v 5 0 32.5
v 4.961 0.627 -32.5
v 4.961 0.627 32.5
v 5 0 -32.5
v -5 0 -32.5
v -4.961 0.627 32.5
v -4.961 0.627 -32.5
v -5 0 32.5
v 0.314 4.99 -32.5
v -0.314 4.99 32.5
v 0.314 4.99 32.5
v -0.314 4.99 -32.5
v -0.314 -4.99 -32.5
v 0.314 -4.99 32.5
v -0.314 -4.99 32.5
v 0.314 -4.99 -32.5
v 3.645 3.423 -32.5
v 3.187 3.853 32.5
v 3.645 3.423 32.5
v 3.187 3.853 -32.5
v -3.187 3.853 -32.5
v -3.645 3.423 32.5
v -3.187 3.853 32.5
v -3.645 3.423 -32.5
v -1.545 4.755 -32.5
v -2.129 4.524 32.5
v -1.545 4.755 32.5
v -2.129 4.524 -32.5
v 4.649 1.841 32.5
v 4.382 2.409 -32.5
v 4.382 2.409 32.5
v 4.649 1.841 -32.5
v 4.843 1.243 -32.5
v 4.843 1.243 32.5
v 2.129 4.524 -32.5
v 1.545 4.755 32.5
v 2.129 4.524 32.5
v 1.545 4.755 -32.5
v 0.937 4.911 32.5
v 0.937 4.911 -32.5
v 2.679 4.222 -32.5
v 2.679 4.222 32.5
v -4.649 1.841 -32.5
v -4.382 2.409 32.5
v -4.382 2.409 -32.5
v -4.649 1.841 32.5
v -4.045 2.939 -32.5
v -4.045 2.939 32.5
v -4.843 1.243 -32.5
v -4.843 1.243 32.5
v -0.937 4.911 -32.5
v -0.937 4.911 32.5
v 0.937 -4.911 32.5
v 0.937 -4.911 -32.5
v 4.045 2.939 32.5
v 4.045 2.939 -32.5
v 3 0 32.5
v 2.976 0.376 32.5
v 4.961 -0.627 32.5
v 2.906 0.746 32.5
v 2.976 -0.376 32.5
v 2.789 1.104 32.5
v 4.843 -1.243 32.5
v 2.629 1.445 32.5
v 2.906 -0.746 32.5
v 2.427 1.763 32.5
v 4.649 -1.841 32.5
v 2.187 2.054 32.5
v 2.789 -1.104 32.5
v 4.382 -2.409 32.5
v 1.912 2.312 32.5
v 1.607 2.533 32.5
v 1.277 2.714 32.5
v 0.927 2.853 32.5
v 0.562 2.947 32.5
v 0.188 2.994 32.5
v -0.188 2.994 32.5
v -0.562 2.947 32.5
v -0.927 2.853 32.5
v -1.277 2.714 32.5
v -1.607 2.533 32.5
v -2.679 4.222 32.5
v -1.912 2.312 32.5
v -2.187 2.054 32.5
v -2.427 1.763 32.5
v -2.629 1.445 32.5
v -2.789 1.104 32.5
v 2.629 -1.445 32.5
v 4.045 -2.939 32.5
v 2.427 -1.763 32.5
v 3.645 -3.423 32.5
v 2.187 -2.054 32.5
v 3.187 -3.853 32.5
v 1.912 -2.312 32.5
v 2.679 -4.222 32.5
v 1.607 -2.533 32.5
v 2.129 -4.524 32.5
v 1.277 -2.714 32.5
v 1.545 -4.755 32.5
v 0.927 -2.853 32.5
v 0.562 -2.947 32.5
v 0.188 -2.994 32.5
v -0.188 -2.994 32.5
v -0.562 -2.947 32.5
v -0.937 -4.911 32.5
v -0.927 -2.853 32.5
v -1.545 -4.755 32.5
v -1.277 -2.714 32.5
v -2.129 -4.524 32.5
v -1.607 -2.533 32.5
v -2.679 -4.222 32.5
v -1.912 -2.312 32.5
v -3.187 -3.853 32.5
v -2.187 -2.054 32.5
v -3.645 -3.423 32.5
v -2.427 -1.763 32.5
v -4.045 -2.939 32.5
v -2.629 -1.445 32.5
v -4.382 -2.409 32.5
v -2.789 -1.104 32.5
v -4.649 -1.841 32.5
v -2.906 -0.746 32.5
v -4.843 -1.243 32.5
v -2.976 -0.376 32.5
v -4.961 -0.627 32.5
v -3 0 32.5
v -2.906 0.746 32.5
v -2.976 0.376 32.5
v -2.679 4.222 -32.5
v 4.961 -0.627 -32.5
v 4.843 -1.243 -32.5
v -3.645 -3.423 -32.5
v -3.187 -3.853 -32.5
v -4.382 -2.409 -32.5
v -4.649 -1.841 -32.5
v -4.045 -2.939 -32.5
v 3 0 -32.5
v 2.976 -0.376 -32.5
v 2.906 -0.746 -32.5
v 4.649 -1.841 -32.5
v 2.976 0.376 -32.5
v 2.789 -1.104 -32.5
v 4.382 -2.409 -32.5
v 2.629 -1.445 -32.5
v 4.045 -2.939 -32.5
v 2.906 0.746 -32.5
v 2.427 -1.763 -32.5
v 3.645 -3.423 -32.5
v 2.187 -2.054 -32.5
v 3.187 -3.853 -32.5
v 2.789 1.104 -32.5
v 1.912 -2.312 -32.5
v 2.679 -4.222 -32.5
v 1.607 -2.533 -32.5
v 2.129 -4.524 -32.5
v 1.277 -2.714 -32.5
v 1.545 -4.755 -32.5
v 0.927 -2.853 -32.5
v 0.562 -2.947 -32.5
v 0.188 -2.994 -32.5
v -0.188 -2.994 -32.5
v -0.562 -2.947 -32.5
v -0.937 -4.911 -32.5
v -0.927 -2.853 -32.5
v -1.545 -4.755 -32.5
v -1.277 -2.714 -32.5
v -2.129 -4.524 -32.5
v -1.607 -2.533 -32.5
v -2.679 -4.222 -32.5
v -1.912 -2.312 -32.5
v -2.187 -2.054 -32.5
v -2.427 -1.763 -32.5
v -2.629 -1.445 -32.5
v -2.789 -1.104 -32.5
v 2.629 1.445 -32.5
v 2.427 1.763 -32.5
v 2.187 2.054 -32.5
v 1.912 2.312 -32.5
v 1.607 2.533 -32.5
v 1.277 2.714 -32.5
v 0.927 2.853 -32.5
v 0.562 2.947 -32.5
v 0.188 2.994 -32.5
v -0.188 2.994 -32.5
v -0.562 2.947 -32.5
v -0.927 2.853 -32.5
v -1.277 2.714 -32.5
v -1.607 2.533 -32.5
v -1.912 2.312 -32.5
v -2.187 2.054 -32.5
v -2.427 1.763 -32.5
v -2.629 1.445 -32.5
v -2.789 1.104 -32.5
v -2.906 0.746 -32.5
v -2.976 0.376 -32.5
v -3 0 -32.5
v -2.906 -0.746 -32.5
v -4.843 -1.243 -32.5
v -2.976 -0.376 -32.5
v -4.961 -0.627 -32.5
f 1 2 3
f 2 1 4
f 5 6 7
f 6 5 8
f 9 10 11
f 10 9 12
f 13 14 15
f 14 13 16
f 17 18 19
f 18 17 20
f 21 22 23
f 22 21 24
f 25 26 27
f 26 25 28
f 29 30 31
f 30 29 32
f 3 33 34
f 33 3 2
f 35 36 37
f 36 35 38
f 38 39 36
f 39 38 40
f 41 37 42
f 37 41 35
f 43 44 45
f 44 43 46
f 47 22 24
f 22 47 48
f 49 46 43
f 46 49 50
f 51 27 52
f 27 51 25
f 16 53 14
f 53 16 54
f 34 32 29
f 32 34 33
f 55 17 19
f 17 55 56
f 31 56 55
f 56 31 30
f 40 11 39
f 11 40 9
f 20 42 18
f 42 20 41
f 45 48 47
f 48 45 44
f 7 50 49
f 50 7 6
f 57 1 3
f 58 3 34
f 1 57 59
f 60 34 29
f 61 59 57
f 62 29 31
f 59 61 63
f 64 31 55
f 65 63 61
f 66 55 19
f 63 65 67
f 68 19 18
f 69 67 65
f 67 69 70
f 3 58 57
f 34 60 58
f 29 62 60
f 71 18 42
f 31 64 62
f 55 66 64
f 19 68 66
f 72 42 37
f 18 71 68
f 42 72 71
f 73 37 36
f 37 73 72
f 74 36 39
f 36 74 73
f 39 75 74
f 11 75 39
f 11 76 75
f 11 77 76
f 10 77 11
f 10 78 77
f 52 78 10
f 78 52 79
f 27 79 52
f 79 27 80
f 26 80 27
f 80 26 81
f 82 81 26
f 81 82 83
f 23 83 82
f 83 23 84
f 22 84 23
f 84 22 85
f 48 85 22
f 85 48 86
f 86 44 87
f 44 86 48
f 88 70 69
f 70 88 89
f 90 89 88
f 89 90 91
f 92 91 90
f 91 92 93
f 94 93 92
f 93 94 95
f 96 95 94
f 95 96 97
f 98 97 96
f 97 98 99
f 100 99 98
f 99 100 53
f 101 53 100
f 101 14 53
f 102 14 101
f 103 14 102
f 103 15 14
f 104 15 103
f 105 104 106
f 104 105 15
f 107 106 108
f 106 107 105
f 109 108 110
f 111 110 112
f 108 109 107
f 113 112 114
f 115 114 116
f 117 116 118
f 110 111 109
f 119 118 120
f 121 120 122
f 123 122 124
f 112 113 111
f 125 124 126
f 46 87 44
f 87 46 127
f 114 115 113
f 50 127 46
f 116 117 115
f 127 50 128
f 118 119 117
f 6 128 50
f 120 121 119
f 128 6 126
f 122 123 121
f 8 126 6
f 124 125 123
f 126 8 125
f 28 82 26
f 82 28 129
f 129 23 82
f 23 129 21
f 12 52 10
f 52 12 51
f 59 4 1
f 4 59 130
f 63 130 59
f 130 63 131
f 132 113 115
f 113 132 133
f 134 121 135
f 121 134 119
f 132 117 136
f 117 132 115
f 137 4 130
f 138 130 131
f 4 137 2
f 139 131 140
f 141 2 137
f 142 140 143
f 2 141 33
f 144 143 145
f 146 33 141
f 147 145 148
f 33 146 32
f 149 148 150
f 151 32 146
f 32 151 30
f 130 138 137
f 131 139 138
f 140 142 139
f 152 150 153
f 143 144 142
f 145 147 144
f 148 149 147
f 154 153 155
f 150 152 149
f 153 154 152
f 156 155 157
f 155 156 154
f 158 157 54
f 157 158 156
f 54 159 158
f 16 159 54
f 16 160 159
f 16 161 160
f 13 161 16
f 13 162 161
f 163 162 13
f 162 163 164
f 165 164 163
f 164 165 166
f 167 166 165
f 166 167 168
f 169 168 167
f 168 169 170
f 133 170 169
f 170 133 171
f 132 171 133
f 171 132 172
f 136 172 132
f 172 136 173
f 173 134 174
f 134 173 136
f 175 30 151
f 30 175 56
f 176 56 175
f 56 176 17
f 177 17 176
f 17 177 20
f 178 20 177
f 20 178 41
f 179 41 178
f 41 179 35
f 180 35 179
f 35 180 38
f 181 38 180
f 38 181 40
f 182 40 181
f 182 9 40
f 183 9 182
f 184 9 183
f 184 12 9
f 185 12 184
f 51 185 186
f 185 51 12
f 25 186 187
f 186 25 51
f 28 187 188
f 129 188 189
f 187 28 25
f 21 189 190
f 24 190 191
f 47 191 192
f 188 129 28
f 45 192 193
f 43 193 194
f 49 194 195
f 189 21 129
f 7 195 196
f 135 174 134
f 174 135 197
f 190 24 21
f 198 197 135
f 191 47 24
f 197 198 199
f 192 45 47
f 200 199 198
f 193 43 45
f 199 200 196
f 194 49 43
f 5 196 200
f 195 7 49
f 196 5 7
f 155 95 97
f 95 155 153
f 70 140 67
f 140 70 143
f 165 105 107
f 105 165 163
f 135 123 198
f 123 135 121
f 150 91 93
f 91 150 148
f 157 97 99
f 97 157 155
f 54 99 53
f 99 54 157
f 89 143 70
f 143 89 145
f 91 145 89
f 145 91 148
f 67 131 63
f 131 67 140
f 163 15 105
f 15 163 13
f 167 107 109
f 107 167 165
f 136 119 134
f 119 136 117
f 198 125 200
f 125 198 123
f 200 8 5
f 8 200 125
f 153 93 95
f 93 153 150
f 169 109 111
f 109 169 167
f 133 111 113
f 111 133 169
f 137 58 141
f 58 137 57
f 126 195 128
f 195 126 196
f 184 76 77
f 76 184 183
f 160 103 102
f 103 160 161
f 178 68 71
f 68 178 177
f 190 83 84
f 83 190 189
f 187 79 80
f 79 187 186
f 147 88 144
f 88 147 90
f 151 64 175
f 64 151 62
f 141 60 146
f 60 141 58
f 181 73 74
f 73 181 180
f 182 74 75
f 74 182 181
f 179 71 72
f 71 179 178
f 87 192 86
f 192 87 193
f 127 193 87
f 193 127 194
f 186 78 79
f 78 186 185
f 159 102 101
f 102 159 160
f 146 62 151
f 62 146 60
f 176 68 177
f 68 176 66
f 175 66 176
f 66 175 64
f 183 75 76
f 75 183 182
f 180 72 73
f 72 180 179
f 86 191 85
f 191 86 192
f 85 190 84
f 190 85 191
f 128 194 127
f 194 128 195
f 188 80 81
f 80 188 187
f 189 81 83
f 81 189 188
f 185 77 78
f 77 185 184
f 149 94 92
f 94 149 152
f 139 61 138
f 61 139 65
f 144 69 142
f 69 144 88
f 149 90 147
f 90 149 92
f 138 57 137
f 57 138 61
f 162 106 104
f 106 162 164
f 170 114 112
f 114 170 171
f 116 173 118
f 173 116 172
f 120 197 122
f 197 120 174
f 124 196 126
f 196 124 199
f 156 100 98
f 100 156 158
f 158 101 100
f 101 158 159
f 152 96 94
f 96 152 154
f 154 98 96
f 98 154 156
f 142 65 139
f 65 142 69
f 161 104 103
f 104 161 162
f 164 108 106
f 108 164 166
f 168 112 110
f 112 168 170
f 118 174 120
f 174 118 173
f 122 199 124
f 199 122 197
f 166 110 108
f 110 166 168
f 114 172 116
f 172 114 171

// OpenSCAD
$fn = 50;


difference() {
	union() {
		translate(v = [0, 0, -32.5000000000]) {
			cylinder(h = 65, r = 5.0000000000);
		}
	}
	union() {
		translate(v = [0, 0, -100.0000000000]) {
			cylinder(h = 200, r = 3);
		}
	}
}
